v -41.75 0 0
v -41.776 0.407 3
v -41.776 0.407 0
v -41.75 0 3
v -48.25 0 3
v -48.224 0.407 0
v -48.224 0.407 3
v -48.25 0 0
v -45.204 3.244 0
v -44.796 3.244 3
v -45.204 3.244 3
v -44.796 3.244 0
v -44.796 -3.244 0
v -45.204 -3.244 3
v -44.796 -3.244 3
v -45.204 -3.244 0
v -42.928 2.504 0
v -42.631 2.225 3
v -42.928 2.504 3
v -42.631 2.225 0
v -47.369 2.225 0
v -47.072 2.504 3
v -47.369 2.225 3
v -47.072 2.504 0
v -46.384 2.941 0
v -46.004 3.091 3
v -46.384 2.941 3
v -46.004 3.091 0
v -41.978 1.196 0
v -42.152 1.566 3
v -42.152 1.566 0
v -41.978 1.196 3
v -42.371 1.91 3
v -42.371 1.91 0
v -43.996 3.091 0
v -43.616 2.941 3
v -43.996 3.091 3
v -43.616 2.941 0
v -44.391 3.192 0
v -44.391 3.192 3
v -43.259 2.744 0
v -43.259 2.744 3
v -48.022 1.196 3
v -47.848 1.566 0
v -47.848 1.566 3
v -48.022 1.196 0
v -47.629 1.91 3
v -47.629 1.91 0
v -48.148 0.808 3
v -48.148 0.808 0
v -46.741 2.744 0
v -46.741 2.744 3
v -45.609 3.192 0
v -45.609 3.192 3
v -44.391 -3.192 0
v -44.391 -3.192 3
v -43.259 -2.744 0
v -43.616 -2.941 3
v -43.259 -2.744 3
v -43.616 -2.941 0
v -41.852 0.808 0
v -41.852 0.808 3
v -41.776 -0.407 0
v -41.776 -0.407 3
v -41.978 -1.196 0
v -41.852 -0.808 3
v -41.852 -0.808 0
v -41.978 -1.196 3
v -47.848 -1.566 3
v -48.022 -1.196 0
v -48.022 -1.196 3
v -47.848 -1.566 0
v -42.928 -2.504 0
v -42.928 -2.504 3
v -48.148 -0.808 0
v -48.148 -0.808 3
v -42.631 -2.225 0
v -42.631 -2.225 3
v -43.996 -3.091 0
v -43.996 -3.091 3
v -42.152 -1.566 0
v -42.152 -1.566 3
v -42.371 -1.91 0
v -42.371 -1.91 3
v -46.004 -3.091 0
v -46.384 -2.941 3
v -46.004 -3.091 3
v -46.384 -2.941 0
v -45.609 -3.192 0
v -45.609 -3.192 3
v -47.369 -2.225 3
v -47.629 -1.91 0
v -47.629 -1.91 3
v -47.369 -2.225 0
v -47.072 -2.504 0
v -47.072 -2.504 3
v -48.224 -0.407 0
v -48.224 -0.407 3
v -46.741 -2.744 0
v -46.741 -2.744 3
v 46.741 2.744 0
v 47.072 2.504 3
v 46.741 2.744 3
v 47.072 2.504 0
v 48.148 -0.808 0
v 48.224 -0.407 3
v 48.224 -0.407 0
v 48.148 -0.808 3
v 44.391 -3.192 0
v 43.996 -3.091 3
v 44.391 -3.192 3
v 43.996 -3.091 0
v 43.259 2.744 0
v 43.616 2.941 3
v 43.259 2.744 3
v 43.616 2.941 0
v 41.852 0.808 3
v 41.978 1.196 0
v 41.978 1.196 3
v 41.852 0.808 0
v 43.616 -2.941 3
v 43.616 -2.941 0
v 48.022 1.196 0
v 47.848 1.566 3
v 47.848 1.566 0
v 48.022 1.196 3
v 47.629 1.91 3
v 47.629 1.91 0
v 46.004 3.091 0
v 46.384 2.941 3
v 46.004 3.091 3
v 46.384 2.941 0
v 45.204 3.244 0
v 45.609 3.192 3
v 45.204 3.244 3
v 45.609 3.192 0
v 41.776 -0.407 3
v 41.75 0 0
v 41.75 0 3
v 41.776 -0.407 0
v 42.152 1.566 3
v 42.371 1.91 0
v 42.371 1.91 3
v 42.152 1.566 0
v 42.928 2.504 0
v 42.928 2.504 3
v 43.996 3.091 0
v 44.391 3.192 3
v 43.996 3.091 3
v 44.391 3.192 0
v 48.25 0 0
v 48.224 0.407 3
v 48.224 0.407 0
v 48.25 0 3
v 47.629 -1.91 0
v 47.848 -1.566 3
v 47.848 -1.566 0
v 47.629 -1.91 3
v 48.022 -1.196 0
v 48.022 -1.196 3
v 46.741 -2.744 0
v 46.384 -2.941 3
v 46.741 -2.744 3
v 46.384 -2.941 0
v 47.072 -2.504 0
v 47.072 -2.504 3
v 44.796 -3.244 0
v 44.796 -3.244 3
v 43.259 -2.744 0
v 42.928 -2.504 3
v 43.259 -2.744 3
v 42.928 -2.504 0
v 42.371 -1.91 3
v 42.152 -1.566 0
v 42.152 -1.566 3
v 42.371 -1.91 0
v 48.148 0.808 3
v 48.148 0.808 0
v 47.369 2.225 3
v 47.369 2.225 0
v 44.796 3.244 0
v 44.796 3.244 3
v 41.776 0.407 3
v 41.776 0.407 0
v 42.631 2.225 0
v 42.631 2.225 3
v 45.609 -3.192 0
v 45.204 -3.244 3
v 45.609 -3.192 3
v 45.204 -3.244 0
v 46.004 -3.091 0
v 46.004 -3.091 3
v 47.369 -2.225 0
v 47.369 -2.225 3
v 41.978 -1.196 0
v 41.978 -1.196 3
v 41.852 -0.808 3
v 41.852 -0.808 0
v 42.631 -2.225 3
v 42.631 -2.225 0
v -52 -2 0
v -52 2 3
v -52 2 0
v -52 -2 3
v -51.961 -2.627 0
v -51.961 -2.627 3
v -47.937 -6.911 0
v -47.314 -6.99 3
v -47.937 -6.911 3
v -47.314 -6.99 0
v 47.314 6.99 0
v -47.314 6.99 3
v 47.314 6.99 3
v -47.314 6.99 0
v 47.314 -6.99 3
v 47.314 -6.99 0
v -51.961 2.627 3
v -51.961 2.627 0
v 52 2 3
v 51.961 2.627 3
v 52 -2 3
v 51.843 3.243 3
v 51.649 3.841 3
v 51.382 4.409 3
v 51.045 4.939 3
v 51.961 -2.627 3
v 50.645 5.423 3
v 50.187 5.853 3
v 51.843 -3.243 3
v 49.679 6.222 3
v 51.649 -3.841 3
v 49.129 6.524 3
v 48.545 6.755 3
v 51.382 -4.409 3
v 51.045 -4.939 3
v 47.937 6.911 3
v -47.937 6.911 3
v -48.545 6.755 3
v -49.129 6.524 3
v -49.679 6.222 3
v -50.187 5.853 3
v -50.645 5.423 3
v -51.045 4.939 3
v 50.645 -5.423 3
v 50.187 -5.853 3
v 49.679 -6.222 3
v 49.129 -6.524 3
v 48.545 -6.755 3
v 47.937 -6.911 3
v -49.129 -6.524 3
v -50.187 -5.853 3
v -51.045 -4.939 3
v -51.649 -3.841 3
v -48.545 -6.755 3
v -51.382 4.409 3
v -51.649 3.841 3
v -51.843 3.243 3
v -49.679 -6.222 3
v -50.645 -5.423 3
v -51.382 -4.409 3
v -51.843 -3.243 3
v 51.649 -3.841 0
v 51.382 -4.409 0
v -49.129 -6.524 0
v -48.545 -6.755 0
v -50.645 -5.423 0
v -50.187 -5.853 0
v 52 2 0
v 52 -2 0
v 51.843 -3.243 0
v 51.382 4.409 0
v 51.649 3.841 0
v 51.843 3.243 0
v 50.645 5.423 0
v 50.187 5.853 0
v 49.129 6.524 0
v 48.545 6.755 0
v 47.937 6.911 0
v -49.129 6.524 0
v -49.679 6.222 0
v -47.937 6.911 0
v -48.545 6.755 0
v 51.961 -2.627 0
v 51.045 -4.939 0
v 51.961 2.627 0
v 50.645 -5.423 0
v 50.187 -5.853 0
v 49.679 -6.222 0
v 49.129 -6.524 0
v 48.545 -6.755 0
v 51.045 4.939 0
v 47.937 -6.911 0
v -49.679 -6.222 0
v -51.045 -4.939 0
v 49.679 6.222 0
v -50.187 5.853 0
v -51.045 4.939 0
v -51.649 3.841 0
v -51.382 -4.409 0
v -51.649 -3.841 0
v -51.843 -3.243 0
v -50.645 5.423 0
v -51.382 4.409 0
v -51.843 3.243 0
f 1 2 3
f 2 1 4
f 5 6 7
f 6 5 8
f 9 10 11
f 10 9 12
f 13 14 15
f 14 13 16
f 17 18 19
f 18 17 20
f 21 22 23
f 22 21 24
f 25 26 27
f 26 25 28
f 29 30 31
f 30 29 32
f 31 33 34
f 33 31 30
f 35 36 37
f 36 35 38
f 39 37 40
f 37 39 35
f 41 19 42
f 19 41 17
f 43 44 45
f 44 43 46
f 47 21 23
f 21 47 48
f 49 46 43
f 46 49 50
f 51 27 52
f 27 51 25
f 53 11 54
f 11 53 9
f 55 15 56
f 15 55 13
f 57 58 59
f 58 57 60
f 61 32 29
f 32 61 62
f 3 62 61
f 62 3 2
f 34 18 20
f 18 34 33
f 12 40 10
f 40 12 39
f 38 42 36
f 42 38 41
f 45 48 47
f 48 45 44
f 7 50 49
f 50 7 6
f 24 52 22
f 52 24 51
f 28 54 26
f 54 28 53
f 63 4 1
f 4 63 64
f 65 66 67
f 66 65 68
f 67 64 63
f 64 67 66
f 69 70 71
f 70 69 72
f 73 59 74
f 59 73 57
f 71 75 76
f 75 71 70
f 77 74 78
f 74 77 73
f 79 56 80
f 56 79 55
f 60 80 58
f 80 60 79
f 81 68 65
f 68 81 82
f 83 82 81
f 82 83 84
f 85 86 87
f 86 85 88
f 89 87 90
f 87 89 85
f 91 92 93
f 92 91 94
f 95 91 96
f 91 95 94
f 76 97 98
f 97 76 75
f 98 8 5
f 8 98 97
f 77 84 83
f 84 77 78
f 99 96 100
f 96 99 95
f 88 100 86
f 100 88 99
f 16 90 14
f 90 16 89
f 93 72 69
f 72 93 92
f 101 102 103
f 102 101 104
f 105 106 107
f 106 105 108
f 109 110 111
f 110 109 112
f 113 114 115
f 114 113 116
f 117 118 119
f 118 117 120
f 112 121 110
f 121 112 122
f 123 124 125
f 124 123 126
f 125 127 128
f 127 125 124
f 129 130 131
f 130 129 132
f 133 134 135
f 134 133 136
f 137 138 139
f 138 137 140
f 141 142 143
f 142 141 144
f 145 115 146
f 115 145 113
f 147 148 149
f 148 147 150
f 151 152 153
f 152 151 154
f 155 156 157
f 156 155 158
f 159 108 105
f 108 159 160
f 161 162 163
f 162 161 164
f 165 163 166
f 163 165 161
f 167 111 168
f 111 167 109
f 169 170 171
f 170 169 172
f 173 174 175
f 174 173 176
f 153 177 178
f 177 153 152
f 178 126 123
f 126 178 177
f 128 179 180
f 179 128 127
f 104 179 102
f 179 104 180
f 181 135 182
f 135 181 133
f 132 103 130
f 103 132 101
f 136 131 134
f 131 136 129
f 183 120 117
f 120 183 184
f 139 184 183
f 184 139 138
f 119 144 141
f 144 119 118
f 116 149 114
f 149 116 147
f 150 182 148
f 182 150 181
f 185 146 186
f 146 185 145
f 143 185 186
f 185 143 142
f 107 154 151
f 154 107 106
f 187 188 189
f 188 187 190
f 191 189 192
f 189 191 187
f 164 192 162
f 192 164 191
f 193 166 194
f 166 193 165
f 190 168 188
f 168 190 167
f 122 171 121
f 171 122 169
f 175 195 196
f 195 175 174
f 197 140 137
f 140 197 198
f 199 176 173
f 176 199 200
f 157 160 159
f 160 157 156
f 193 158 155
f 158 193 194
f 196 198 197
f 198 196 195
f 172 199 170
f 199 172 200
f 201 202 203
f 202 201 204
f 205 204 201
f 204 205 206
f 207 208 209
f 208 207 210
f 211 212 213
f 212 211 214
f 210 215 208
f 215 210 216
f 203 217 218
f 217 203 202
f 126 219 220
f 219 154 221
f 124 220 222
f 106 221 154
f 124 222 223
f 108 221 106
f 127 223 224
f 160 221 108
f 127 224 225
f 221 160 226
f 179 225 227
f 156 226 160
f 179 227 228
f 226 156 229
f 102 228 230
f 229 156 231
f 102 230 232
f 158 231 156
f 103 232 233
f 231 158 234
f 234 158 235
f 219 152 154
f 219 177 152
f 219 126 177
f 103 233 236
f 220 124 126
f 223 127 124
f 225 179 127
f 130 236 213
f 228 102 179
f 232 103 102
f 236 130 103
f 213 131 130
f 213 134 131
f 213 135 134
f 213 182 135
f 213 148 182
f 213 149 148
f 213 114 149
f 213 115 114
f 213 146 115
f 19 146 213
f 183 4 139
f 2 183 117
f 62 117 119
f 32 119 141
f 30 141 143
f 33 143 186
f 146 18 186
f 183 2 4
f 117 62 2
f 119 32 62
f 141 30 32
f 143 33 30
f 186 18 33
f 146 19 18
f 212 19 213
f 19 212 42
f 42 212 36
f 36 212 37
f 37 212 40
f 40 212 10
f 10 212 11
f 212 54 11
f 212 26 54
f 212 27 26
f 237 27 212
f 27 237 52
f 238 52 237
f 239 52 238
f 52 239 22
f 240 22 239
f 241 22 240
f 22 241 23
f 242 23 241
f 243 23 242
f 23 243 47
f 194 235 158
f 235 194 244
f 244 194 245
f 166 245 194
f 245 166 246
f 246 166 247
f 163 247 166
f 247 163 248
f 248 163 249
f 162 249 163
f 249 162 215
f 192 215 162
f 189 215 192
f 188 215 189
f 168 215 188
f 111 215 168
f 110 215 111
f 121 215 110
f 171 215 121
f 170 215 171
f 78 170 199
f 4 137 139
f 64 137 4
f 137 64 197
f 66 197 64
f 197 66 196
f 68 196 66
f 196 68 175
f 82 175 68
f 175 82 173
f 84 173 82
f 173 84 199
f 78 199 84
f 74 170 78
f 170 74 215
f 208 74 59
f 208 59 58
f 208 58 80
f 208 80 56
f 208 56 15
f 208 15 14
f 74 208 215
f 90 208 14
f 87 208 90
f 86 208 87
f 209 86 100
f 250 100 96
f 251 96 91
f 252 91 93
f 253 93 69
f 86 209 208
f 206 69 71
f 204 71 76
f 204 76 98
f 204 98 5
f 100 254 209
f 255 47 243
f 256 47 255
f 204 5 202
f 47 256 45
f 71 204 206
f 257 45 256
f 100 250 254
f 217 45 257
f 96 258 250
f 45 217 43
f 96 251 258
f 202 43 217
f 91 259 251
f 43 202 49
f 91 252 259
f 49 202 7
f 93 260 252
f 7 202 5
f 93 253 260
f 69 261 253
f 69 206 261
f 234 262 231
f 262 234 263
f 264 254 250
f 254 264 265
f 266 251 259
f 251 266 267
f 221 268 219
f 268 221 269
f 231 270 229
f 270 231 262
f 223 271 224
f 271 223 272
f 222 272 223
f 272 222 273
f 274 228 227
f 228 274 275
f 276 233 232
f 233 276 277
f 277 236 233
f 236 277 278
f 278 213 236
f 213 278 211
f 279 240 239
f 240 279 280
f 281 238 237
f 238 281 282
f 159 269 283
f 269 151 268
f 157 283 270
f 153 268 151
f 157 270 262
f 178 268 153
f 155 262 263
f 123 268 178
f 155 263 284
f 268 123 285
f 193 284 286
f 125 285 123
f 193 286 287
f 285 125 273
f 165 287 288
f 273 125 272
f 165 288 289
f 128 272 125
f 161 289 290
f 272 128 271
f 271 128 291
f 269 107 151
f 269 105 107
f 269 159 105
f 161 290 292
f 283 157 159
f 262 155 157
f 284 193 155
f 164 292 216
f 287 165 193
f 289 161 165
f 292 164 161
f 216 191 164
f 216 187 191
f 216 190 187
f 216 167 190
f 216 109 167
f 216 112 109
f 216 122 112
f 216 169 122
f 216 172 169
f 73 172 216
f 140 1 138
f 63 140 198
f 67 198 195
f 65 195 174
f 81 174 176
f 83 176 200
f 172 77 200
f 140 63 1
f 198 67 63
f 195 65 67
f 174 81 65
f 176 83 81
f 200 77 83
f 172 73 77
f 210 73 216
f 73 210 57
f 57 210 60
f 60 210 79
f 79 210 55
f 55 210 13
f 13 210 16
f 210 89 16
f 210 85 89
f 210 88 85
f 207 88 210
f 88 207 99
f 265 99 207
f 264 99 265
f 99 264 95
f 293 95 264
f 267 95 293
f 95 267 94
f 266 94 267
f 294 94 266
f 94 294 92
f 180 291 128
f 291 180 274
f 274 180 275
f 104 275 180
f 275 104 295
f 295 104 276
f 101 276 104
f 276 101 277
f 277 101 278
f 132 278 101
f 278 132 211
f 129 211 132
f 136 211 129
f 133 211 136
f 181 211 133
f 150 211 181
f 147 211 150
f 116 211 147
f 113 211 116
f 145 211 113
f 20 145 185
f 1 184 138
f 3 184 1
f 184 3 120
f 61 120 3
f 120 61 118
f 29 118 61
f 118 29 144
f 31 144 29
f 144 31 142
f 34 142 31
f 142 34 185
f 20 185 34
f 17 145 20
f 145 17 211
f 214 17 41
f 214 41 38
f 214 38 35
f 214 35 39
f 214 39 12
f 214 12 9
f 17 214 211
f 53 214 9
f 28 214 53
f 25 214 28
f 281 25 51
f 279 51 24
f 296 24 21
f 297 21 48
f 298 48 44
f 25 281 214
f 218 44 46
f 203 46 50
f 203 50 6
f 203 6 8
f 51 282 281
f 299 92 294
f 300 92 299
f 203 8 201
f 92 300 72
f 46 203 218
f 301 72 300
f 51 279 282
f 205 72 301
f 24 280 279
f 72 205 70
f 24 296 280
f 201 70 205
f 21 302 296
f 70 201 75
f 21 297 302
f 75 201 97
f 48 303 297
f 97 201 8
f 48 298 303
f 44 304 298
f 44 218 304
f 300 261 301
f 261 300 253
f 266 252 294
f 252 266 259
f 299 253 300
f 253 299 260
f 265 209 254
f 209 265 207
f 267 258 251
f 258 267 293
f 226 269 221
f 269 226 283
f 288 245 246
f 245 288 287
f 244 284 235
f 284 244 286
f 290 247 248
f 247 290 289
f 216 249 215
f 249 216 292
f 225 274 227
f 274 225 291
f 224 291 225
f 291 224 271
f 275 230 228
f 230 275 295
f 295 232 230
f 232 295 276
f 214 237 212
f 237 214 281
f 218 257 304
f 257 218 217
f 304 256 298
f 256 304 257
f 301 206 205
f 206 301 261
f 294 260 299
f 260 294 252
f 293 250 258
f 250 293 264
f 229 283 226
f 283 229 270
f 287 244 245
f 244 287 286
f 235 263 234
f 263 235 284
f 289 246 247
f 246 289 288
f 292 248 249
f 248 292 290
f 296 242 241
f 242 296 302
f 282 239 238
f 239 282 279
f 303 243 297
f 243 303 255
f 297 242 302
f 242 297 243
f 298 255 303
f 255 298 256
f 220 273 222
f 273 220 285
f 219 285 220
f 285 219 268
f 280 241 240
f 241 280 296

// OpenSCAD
$fn = 50;


difference() {
	union() {
		hull() {
			translate(v = [-47.0000000000, 2.0000000000, 0]) {
				cylinder(h = 3, r = 5);
			}
			translate(v = [47.0000000000, 2.0000000000, 0]) {
				cylinder(h = 3, r = 5);
			}
			translate(v = [-47.0000000000, -2.0000000000, 0]) {
				cylinder(h = 3, r = 5);
			}
			translate(v = [47.0000000000, -2.0000000000, 0]) {
				cylinder(h = 3, r = 5);
			}
		}
	}
	union() {
		translate(v = [-45.0000000000, 0.0000000000, 0]) {
			cylinder(h = 3, r = 3.2500000000);
		}
		translate(v = [45.0000000000, 0.0000000000, 0]) {
			cylinder(h = 3, r = 3.2500000000);
		}
		translate(v = [-45.0000000000, 0.0000000000, 0]) {
			cylinder(h = 3, r = 1.8000000000);
		}
		translate(v = [45.0000000000, 0.0000000000, 0]) {
			cylinder(h = 3, r = 1.8000000000);
		}
		translate(v = [-45.0000000000, 0.0000000000, 0]) {
			cylinder(h = 3, r = 1.8000000000);
		}
		translate(v = [45.0000000000, 0.0000000000, 0]) {
			cylinder(h = 3, r = 1.8000000000);
		}
		translate(v = [-45.0000000000, 0.0000000000, 0]) {
			cylinder(h = 3, r = 1.8000000000);
		}
		translate(v = [45.0000000000, 0.0000000000, 0]) {
			cylinder(h = 3, r = 1.8000000000);
		}
	}
}
